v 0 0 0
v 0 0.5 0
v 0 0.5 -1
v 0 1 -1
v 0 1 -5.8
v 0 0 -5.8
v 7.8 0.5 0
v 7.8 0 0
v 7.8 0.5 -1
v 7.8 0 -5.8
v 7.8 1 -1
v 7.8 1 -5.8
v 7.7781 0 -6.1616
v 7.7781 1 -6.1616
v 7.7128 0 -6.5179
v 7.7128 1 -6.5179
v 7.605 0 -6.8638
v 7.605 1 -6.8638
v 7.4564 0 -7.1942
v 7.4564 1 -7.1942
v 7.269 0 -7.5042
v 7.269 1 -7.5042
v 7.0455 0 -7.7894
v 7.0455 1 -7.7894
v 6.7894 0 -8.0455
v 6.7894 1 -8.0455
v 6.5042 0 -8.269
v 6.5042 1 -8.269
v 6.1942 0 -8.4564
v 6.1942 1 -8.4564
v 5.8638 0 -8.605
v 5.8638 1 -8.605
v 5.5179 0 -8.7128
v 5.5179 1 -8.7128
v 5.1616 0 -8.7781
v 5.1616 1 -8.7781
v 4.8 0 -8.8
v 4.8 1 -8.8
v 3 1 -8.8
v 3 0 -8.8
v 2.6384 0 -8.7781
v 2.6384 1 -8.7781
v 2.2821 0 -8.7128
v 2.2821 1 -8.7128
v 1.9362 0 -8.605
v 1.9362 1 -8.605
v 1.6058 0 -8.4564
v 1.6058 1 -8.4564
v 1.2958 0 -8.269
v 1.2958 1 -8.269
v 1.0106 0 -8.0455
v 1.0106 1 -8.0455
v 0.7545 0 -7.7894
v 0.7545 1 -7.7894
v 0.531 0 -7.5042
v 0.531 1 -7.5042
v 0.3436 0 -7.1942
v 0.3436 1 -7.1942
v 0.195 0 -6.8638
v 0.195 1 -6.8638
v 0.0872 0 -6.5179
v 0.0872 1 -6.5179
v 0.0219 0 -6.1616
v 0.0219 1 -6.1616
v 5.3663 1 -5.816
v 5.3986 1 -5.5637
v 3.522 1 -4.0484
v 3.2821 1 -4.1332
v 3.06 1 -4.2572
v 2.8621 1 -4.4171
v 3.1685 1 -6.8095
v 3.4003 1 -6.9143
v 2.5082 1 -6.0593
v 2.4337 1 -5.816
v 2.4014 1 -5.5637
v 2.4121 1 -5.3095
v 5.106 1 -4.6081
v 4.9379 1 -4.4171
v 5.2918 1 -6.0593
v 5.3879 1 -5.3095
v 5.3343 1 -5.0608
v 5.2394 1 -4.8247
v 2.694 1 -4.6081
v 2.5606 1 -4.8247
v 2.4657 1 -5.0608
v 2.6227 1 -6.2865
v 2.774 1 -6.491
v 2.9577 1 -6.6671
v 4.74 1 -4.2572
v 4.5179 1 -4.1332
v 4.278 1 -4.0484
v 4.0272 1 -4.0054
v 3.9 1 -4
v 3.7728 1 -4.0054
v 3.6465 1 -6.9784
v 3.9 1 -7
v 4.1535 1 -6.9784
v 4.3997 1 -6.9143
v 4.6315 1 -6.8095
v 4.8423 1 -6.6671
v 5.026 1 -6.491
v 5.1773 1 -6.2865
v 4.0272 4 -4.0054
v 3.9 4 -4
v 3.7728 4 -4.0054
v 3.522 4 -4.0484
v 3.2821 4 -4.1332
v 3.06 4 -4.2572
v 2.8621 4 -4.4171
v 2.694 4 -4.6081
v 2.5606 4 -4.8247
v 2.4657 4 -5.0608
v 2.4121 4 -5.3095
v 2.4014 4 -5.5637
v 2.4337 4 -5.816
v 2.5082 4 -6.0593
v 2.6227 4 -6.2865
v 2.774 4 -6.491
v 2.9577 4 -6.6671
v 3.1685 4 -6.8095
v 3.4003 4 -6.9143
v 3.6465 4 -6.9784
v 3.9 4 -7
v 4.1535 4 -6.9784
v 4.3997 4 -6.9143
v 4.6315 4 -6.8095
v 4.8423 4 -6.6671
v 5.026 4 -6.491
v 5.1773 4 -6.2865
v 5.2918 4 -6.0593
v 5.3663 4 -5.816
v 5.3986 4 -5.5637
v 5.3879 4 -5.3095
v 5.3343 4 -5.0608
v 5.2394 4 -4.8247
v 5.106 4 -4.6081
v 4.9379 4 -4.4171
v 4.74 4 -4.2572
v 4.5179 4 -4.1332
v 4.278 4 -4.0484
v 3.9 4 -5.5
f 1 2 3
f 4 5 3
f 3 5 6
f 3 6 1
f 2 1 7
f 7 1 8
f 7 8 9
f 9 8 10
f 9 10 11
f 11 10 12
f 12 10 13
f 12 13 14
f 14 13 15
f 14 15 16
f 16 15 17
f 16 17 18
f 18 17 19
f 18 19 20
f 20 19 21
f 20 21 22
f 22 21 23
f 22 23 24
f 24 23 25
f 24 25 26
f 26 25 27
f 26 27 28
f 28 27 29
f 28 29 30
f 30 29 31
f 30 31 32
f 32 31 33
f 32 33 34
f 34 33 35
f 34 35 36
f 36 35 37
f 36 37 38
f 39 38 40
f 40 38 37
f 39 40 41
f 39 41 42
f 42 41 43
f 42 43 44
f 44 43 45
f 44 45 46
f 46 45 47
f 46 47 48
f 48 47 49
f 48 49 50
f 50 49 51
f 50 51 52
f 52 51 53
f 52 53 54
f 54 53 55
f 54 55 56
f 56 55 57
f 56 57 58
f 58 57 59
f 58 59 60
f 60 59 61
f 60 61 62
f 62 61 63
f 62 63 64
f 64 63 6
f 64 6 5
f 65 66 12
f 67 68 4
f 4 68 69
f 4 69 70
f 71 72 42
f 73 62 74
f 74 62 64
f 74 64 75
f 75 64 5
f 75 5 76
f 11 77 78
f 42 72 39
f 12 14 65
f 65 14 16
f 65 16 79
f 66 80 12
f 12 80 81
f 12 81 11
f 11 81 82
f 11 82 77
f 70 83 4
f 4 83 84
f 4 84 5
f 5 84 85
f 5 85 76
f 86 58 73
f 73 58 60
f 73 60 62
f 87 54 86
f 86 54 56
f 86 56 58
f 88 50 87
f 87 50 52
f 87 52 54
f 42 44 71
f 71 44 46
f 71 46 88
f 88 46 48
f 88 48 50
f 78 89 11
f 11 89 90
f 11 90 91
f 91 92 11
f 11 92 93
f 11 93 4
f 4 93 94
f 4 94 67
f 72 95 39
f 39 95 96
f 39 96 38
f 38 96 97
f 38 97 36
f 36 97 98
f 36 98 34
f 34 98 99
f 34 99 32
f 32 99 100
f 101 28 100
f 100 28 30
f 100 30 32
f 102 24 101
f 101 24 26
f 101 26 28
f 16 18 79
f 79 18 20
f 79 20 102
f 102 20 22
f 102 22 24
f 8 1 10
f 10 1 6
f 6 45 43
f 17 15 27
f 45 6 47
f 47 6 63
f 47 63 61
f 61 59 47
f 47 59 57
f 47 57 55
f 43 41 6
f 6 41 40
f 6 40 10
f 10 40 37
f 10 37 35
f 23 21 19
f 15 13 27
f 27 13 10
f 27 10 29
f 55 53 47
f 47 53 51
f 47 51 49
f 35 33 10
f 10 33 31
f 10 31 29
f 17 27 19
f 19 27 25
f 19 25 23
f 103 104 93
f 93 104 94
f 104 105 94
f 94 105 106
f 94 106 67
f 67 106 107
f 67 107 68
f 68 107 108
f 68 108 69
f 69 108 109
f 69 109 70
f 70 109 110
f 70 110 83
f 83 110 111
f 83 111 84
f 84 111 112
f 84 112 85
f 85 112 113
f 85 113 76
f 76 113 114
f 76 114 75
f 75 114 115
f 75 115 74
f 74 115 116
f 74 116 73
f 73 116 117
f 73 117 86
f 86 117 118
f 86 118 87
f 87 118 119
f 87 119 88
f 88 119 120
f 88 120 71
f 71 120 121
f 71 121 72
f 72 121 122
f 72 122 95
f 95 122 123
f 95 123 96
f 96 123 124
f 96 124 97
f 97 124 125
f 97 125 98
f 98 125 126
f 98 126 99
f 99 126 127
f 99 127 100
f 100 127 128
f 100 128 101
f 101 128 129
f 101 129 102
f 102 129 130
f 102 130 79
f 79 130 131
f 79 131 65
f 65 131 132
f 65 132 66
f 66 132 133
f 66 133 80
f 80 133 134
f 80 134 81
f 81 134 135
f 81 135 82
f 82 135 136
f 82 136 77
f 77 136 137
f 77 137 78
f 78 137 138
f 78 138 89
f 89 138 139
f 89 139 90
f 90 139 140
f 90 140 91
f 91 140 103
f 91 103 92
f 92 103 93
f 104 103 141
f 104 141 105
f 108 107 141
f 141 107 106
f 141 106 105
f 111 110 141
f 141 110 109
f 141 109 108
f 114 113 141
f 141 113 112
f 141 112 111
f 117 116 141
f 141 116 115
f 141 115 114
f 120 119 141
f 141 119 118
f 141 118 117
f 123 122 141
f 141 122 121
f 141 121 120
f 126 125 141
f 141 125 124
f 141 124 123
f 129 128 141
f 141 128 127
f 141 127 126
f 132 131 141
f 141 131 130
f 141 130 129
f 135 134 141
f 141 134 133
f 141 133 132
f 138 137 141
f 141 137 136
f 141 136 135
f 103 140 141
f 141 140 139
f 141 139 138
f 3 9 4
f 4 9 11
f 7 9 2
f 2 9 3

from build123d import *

# Parameters (mm, degrees)
BOSS_EXTRUDE1_DEPTH = 1
SKETCH2_R           = 1.5
BOSS_EXTRUDE2_DEPTH = 3
SKETCH3_W           = 7.8
SKETCH3_H           = 1
CUT_EXTRUDE1_DEPTH  = 0.5


with BuildPart() as part:
    # Sketch1 → Boss-Extrude1 (new body)
    with BuildSketch(Plane(origin=(0, 0, 0), x_dir=(1, 0, 0), z_dir=(0, 1, 0))):
        with BuildLine():
            Line((0, 0), (7.8, 0))
            Line((7.8, 0), (7.8, 5.8))
            ThreePointArc((7.8, 5.8), (6.921320344, 7.921320344), (4.8, 8.8))
            Line((4.8, 8.8), (3, 8.8))
            ThreePointArc((3, 8.8), (0.878679656, 7.921320344), (0, 5.8))
            Line((0, 5.8), (0, 0))
        make_face()
    extrude(amount=BOSS_EXTRUDE1_DEPTH)

    # Sketch2 → Boss-Extrude2 (add)
    with BuildSketch(Plane(origin=(0, 1, 0), x_dir=(1, 0, 0), z_dir=(0, 1, 0))):
        with Locations((3.9, 5.5)):
            Circle(SKETCH2_R)
    extrude(amount=BOSS_EXTRUDE2_DEPTH)

    # Sketch3 → Cut-Extrude1 (cut)
    with BuildSketch(Plane(origin=(0, 1, 0), x_dir=(1, 0, 0), z_dir=(0, 1, 0))):
        with Locations((3.9, 0.5)):
            Rectangle(SKETCH3_W, SKETCH3_H)
    extrude(amount=-CUT_EXTRUDE1_DEPTH, mode=Mode.SUBTRACT)


solid = part.part
